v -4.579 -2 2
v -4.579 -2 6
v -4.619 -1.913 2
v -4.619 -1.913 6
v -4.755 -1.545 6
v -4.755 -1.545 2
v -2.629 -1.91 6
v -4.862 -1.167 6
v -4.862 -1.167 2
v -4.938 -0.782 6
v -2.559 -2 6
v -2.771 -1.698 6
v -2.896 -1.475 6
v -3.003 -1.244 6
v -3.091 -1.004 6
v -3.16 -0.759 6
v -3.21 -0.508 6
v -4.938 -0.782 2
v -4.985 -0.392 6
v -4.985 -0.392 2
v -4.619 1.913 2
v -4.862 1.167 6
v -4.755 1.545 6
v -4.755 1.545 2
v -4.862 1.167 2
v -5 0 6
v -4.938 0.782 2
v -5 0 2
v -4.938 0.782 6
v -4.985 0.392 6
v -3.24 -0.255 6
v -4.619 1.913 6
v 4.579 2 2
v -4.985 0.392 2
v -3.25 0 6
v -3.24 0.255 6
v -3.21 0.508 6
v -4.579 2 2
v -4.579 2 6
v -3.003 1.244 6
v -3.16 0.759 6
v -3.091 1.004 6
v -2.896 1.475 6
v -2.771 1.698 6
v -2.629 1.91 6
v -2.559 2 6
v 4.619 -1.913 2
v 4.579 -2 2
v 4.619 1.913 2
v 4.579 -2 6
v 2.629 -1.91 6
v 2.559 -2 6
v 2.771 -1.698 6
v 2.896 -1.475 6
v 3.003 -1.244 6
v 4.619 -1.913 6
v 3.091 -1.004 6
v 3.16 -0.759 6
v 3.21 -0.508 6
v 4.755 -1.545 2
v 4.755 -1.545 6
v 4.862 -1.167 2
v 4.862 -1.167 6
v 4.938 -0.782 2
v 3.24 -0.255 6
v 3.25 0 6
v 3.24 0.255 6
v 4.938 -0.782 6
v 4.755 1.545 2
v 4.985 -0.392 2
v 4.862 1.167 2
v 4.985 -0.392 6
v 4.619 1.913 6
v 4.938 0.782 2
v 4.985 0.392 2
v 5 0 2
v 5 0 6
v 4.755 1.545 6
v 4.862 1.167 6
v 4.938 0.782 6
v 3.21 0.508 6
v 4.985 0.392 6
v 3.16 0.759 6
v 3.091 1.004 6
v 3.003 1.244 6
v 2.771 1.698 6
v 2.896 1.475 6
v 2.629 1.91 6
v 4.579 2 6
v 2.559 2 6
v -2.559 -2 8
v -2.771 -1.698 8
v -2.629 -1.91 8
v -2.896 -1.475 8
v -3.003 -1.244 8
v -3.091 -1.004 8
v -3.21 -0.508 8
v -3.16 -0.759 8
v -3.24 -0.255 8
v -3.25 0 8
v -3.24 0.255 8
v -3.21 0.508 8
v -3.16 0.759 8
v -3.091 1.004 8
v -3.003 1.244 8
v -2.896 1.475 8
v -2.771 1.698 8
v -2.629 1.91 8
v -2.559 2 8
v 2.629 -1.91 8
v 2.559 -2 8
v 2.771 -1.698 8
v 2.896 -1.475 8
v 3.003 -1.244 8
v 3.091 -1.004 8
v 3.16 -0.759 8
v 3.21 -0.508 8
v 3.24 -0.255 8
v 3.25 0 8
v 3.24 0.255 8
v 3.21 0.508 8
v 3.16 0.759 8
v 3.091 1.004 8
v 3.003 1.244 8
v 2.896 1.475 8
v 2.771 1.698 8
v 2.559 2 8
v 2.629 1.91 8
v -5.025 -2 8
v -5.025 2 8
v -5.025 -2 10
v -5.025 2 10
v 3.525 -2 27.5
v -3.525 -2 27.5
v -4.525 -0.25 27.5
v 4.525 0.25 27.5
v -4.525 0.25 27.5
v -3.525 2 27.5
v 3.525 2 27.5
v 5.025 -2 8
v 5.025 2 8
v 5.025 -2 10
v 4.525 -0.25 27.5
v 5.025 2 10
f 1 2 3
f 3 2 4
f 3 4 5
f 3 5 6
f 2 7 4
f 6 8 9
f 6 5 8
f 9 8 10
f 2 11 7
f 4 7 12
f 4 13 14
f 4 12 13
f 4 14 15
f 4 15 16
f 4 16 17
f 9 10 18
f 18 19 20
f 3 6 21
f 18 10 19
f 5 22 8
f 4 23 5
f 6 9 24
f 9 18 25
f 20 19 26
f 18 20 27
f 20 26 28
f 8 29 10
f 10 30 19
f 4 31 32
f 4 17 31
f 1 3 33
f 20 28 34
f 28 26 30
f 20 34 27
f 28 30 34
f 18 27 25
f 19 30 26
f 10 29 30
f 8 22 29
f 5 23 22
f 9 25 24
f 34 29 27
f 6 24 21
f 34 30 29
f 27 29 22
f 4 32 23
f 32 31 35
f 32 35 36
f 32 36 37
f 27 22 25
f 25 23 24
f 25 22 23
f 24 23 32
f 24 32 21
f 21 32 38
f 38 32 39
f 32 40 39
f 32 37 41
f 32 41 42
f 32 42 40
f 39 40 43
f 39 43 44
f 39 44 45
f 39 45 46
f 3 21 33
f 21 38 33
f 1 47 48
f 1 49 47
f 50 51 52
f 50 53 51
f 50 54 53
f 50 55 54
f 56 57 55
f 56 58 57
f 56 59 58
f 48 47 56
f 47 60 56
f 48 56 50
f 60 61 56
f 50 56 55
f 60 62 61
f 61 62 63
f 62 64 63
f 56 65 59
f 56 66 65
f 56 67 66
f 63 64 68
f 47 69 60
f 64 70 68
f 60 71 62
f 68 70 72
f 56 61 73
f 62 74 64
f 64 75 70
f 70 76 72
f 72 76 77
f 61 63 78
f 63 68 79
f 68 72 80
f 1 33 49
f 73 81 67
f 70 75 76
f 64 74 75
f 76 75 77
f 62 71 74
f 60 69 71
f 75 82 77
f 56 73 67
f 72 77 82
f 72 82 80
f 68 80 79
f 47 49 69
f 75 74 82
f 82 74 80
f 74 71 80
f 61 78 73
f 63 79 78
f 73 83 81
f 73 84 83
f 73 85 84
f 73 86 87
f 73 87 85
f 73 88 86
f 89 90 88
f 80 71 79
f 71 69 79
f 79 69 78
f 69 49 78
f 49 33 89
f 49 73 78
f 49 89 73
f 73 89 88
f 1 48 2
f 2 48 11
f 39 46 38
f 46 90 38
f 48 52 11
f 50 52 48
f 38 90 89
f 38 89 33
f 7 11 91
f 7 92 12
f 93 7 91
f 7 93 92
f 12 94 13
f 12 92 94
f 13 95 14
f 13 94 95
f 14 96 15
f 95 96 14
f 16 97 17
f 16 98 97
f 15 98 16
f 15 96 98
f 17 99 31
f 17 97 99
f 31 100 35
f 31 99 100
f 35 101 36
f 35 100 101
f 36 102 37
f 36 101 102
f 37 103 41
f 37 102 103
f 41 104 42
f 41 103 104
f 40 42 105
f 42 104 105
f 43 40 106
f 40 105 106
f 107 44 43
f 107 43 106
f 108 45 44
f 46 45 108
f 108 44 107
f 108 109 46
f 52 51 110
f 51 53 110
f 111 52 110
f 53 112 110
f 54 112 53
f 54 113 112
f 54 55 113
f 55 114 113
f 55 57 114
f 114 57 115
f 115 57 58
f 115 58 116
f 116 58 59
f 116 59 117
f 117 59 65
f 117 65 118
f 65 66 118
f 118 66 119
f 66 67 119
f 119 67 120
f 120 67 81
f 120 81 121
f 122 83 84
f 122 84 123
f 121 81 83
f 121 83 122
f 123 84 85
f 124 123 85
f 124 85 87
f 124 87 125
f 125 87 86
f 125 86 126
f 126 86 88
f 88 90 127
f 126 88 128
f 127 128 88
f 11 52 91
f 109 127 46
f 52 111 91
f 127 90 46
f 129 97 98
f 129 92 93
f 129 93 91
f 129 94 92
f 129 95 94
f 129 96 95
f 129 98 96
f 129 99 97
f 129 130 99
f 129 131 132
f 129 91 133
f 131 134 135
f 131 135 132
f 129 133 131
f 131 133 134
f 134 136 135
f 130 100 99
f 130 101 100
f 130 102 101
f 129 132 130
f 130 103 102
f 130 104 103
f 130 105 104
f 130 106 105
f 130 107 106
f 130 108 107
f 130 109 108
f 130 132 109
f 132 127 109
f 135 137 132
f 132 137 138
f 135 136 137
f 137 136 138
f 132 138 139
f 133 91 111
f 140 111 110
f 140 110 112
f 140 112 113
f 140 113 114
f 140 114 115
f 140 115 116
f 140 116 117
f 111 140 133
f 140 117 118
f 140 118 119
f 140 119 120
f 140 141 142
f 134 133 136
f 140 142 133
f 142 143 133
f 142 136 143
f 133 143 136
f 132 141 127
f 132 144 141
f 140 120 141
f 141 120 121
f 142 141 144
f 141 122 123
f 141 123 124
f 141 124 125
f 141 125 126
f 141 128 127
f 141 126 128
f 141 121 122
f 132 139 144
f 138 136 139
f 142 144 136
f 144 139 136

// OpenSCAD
$fn=80;

module frame() {
    difference() {
        translate([0,-1,8/2]) cube([14,20,8], center=true);
        translate([0,-1,(8/2)]) cube([10,20.5,4], center=true);
        translate([0,-1,6]) cube([6.4,20.5,4.1], center=true);
    }
}

module nut() {
    intersection() {
        cylinder(d=10,h=4);
        translate([0,0,4/2]) cube([10,4,4], center=true);
    }
    
    translate([0,0,8/2]) {
        intersection() {
            cylinder(d=6.5,h=2);
            translate([0,0,2/2]) cube([10,4,2], center=true);
        }
    }
    
    translate([0,0,6/2]) {
        hull() {
            translate([0,0,(2+6)/2]) cube([10.05,4,2], center=true);
            translate([0,0,18]) translate([0,0,(2+6)/2]) cube([7.05,4,1], center=true);
            translate([0,0,18]) translate([0,0,(2+6)/2]) cube([9.05,0.5,1], center=true);
        }
    }
}

%frame();
translate([0,0,2]) nut();
